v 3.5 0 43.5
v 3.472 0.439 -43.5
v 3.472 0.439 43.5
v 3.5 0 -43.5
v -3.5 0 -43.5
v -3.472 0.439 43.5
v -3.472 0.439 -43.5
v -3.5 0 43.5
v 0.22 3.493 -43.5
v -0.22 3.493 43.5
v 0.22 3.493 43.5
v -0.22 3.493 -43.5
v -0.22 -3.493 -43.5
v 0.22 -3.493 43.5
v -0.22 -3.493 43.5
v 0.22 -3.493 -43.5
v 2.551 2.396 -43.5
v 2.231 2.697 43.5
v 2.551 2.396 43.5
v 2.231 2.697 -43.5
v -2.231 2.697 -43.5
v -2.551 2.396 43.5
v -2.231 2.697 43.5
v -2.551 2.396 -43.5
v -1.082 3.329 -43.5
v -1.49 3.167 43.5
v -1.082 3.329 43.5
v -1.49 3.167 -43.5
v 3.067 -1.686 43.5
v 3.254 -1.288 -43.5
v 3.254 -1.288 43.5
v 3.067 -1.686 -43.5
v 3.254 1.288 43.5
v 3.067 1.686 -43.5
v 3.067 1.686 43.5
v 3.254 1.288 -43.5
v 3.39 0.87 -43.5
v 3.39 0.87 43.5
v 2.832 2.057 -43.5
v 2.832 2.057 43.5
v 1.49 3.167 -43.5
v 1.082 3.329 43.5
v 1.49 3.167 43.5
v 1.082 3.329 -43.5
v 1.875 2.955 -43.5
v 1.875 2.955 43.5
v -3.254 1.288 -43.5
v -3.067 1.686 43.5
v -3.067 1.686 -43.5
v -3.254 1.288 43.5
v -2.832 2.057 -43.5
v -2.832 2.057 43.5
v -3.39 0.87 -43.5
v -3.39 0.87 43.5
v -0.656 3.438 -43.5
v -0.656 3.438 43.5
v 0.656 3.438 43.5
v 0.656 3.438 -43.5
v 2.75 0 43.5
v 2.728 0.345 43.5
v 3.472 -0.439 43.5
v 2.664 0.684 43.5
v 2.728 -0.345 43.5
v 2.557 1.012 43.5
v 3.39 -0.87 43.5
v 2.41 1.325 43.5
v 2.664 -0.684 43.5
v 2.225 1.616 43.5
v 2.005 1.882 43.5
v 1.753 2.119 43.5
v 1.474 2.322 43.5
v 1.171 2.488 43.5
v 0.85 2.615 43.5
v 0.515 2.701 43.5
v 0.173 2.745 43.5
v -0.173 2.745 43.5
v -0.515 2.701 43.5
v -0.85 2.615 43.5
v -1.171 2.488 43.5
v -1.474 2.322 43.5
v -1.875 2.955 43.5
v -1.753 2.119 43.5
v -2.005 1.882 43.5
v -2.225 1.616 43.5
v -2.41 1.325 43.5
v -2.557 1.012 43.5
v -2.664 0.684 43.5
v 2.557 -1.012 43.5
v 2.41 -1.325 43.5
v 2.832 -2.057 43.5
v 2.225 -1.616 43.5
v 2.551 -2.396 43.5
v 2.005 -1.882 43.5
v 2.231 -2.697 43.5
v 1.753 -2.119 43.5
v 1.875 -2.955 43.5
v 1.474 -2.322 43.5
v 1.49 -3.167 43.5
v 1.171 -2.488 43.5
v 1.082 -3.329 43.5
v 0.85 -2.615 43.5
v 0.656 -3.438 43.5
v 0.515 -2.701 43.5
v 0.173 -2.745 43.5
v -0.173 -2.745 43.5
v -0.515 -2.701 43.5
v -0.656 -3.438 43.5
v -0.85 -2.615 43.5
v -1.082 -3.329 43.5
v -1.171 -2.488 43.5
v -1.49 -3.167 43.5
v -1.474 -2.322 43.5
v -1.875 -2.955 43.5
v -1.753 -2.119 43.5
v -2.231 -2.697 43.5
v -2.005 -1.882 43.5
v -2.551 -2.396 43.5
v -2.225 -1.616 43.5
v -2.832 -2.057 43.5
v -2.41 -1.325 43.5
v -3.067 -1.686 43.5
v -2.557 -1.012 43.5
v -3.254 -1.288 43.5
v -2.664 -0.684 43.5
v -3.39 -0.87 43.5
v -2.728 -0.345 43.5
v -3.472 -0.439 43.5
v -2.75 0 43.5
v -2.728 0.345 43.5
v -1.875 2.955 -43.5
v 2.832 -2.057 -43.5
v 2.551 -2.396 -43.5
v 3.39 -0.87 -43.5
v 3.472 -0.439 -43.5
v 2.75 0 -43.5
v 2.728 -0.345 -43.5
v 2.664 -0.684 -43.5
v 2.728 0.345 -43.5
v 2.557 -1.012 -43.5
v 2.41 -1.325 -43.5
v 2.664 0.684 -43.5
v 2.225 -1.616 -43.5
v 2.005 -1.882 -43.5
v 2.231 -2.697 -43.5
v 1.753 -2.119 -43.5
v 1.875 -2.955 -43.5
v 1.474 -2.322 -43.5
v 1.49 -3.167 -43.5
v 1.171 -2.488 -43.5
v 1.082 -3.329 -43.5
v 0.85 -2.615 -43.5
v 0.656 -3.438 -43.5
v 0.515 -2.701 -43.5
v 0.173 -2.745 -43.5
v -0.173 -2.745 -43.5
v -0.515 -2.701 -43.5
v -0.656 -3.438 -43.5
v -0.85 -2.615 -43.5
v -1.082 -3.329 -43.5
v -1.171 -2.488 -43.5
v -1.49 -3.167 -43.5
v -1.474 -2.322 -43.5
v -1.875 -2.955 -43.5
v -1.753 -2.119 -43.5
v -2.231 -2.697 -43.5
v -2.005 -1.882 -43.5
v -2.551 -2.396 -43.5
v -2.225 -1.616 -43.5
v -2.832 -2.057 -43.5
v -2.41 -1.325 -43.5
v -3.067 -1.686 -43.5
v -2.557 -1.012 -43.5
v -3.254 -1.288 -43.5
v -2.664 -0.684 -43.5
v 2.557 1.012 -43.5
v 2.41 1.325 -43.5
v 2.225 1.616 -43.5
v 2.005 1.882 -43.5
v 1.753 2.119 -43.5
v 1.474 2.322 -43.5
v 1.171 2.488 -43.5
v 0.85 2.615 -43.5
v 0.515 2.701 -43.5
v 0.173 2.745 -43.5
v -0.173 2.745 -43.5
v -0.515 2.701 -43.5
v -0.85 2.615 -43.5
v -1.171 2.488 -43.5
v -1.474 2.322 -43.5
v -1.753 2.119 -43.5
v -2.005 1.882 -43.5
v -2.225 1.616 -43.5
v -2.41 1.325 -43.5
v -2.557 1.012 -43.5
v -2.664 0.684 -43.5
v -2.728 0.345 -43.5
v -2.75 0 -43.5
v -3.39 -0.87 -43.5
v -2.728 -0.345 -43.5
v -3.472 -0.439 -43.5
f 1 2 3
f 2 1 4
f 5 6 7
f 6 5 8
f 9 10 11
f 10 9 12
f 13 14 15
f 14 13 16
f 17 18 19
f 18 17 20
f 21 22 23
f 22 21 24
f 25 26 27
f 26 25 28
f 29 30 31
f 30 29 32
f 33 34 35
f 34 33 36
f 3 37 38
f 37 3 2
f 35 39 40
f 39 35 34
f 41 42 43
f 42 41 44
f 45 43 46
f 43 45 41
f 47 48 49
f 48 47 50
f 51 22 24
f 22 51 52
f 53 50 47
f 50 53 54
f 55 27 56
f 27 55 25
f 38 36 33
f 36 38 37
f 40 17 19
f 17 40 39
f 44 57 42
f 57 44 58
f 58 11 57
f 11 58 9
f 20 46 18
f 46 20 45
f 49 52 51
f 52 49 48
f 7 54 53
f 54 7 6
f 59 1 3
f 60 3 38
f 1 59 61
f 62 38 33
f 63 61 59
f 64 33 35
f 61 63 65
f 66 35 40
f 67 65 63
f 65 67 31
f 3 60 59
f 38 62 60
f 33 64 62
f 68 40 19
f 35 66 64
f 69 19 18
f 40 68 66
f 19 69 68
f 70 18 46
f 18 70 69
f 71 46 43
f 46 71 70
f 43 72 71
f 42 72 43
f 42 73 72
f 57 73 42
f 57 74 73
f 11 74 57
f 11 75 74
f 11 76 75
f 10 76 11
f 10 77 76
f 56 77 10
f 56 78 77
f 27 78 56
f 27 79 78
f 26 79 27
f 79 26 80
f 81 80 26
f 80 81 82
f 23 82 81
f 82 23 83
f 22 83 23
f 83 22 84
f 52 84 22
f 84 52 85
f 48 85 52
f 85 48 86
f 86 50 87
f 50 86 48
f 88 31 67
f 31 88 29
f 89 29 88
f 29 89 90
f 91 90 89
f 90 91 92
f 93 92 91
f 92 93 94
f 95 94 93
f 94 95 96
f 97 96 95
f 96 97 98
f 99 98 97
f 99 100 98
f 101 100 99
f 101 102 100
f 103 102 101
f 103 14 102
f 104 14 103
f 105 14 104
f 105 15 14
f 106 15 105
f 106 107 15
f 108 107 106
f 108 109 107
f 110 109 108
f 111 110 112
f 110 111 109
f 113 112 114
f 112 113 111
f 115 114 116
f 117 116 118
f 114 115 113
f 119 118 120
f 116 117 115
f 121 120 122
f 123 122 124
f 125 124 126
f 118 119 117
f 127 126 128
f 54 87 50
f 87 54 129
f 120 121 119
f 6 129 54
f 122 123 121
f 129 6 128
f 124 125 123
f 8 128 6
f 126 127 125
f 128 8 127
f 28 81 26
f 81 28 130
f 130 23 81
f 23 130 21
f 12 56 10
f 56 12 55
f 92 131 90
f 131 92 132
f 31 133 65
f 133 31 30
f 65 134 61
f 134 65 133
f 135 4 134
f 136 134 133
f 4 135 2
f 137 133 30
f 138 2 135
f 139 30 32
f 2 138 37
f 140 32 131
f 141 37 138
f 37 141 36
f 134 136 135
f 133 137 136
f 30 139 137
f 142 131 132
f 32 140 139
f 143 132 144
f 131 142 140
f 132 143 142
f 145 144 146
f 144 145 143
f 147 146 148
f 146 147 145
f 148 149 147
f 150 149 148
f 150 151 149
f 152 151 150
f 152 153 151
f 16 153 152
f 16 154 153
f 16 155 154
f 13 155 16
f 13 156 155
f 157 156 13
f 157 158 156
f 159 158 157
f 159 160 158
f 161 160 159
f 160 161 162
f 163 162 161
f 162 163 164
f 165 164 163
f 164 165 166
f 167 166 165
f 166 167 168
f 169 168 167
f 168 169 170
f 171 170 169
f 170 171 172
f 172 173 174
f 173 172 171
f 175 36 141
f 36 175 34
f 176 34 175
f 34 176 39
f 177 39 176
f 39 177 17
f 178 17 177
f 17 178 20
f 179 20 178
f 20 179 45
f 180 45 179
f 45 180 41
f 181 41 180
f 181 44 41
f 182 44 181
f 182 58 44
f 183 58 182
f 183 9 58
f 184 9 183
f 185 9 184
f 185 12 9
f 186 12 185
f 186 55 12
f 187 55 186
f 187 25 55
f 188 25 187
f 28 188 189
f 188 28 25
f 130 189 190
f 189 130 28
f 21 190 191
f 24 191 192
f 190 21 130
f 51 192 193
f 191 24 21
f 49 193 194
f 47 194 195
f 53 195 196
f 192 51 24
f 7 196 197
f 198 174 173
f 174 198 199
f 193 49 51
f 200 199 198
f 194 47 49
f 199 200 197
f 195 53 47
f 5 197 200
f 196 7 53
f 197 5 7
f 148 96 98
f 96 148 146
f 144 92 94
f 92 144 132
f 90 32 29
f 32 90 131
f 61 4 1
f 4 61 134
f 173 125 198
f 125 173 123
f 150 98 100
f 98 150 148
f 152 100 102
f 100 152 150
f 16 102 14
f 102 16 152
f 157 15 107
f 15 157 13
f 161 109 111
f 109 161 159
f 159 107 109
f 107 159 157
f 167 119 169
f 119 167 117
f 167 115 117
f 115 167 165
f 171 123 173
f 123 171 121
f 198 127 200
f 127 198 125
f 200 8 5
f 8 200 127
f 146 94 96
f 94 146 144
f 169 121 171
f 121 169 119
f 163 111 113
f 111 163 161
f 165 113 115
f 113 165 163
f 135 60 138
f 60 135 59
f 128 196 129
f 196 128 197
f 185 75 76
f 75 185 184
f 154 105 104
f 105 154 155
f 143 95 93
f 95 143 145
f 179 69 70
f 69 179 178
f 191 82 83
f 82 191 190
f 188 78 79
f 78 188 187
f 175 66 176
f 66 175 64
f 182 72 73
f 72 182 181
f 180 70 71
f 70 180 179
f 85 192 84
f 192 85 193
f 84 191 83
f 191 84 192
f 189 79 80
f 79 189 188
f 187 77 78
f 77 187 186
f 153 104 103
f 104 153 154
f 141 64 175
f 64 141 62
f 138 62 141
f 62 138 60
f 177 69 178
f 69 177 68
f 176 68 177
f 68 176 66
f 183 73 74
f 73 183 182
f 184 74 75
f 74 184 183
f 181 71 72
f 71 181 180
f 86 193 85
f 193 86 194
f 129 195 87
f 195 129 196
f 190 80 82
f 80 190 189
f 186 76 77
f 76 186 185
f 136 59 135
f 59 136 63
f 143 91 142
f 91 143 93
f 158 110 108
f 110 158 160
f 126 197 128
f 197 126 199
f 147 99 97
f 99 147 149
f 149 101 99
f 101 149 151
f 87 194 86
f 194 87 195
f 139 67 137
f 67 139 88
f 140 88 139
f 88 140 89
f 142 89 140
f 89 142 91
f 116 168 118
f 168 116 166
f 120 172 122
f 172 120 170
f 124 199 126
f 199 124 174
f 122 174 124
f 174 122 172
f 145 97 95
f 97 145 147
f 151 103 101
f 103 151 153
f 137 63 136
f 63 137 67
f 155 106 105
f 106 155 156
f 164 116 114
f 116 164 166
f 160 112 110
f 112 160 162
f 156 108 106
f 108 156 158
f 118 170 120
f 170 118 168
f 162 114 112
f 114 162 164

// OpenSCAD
$fn = 50;


difference() {
	union() {
		translate(v = [0, 0, -43.5000000000]) {
			cylinder(h = 87, r = 3.5000000000);
		}
	}
	union() {
		translate(v = [0, 0, -100.0000000000]) {
			cylinder(h = 200, r = 2.7500000000);
		}
	}
}
